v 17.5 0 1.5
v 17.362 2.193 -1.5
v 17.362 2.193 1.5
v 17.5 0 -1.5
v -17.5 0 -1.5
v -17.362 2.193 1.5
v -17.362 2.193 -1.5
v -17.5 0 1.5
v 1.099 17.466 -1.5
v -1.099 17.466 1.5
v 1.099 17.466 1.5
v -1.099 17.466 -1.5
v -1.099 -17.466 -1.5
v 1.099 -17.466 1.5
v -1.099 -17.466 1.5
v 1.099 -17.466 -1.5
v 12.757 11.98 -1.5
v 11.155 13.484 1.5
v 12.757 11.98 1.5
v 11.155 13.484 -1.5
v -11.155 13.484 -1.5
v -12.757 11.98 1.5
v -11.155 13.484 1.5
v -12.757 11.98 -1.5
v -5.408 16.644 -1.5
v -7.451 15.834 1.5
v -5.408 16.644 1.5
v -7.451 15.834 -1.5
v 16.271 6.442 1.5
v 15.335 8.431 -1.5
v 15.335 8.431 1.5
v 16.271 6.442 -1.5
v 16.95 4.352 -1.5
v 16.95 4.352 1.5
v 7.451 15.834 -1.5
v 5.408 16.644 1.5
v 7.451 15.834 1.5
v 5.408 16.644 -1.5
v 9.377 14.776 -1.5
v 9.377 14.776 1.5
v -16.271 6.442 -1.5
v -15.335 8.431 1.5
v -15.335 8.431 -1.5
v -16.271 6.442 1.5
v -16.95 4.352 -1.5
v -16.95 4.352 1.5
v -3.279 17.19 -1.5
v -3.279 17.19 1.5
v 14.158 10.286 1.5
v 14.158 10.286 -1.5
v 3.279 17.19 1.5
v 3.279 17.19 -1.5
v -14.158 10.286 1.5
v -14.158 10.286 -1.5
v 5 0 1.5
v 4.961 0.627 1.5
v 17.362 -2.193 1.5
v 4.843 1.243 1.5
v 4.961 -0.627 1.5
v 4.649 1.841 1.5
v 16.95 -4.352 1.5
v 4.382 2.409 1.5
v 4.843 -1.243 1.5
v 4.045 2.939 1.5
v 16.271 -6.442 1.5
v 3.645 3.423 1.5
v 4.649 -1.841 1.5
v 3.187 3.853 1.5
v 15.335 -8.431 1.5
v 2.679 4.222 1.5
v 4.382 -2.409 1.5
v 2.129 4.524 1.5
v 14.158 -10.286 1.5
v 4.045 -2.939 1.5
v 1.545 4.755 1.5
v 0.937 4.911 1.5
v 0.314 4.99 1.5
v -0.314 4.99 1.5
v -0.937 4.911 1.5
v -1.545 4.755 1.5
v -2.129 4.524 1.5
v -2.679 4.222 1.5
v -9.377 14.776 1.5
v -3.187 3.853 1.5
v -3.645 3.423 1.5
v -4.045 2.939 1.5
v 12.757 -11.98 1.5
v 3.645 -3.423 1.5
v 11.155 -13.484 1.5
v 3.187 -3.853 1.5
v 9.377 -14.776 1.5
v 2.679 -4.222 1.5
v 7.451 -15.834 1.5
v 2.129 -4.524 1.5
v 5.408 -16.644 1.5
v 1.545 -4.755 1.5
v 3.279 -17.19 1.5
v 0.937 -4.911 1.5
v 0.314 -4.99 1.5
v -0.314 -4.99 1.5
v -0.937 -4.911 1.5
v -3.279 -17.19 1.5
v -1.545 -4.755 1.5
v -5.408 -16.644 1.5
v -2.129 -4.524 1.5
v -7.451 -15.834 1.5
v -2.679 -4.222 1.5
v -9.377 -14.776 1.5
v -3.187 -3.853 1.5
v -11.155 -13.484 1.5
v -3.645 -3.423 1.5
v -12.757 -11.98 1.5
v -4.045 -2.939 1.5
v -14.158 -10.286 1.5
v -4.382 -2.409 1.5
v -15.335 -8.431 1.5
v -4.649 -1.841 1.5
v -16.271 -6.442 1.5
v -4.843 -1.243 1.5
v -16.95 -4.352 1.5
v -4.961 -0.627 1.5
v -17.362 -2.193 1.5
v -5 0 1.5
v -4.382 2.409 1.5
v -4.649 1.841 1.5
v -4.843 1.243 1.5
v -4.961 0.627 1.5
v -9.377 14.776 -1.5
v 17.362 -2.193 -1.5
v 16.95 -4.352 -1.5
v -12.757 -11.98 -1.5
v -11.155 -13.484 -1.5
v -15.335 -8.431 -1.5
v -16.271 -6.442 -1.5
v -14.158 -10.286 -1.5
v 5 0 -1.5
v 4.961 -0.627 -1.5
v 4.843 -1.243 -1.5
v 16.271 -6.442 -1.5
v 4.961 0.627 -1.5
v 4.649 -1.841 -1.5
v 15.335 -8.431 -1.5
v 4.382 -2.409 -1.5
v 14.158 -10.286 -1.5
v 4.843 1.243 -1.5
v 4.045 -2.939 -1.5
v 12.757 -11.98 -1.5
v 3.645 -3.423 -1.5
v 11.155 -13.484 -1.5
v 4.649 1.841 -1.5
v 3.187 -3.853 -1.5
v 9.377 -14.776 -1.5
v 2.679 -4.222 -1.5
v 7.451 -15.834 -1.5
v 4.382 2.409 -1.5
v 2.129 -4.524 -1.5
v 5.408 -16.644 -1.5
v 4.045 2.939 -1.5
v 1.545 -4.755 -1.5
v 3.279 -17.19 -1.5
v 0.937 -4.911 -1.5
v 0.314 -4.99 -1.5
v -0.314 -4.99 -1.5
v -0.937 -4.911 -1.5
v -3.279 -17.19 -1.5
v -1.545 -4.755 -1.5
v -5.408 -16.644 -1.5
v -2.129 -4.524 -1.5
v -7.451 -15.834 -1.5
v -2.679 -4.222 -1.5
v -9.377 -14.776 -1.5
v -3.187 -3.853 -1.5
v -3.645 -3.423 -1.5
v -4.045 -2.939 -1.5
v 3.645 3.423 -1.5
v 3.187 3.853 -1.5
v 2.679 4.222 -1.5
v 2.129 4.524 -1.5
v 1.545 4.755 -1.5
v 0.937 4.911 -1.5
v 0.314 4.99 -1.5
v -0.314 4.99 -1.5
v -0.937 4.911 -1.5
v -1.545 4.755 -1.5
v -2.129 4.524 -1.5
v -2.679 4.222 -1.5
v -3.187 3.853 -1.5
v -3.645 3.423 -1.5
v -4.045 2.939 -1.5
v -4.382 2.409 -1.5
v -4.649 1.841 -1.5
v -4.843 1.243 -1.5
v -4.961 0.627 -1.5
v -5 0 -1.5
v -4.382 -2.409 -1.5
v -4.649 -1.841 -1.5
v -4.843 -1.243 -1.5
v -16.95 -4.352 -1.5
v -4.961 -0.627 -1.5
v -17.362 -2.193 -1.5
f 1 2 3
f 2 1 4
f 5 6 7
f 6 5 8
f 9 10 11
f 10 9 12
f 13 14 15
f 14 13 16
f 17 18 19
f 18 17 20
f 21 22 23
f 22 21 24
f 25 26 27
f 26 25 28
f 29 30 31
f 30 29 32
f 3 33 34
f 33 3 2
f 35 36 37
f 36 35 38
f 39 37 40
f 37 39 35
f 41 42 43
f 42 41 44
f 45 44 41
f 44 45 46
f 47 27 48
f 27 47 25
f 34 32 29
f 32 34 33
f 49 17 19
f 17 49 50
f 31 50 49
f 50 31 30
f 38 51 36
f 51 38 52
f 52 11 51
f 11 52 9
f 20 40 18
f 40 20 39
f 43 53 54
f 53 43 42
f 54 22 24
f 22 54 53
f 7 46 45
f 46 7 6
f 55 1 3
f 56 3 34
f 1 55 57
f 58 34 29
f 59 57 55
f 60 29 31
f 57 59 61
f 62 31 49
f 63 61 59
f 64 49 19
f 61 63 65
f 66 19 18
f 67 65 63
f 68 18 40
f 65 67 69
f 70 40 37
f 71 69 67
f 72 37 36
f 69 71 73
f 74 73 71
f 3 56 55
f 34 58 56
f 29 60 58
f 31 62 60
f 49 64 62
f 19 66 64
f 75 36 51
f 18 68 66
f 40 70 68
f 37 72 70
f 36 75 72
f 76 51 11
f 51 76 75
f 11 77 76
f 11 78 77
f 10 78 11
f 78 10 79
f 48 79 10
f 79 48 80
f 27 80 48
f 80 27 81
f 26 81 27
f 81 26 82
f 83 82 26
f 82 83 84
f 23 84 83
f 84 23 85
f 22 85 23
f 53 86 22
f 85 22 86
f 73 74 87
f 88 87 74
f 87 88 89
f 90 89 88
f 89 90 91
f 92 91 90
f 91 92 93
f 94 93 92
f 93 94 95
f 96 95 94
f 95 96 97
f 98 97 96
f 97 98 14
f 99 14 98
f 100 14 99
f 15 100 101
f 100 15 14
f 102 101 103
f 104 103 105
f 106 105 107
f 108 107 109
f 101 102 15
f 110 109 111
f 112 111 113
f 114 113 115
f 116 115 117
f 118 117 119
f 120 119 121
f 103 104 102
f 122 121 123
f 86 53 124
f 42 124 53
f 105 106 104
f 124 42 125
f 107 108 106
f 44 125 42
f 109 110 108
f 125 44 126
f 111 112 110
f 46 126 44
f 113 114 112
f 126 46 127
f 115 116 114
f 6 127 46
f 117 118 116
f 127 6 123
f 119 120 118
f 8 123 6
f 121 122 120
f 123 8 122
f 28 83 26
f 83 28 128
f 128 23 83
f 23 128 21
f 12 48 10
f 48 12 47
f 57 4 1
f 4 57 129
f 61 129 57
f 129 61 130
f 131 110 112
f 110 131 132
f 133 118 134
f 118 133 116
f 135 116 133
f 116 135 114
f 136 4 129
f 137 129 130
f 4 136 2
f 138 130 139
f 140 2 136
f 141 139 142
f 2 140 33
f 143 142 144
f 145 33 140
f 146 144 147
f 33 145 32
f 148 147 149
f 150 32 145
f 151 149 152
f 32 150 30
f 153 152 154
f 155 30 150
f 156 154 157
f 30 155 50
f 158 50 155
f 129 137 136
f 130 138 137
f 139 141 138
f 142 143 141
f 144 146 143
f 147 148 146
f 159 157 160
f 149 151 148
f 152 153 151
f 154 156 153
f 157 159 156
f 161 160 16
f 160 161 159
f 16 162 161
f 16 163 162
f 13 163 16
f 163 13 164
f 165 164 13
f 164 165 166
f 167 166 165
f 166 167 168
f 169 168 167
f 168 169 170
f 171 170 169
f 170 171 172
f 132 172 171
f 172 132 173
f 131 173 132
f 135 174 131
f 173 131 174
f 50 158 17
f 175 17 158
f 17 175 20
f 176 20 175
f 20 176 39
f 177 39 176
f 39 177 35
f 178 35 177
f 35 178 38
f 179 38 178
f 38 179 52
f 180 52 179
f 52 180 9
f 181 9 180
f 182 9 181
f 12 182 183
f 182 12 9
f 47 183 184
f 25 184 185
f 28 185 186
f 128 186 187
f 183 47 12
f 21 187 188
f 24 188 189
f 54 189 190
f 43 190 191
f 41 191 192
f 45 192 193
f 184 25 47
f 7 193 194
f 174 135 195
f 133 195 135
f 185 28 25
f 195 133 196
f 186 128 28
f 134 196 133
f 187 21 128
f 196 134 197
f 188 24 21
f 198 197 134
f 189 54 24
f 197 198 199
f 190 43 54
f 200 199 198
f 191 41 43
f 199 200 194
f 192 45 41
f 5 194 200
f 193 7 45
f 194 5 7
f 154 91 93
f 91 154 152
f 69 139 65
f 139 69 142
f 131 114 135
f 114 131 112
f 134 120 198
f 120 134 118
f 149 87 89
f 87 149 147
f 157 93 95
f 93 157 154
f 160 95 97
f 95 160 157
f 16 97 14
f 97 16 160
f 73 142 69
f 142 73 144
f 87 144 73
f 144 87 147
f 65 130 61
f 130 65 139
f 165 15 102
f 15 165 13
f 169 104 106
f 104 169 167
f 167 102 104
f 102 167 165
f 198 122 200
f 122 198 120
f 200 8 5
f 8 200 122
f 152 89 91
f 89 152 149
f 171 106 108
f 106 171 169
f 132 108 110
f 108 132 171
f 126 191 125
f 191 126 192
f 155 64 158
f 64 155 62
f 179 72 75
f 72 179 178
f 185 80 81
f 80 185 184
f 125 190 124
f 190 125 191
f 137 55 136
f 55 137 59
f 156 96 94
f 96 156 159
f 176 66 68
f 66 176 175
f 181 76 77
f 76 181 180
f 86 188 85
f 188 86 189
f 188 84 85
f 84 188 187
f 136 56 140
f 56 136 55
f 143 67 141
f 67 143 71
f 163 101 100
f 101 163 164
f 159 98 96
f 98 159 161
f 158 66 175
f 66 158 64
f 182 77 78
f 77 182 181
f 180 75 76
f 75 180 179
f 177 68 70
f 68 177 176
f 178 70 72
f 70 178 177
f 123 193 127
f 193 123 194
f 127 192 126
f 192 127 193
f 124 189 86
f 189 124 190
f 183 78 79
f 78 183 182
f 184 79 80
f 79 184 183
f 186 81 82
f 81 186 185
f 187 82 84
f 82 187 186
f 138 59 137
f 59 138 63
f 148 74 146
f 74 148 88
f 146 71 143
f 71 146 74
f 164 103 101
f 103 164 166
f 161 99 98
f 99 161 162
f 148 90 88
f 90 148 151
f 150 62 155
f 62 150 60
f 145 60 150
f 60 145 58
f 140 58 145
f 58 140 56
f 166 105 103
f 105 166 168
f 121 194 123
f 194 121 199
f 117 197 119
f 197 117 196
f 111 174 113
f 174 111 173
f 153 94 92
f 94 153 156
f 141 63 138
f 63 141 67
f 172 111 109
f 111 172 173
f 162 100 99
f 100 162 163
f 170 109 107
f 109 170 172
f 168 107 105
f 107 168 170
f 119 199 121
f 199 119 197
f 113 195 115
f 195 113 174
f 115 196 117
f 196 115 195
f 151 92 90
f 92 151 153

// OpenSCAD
$fn = 50;


difference() {
	union() {
		translate(v = [0, 0, -1.5000000000]) {
			cylinder(h = 3, r = 17.5000000000);
		}
	}
	union() {
		translate(v = [0, 0, -100.0000000000]) {
			cylinder(h = 200, r = 5);
		}
	}
}
